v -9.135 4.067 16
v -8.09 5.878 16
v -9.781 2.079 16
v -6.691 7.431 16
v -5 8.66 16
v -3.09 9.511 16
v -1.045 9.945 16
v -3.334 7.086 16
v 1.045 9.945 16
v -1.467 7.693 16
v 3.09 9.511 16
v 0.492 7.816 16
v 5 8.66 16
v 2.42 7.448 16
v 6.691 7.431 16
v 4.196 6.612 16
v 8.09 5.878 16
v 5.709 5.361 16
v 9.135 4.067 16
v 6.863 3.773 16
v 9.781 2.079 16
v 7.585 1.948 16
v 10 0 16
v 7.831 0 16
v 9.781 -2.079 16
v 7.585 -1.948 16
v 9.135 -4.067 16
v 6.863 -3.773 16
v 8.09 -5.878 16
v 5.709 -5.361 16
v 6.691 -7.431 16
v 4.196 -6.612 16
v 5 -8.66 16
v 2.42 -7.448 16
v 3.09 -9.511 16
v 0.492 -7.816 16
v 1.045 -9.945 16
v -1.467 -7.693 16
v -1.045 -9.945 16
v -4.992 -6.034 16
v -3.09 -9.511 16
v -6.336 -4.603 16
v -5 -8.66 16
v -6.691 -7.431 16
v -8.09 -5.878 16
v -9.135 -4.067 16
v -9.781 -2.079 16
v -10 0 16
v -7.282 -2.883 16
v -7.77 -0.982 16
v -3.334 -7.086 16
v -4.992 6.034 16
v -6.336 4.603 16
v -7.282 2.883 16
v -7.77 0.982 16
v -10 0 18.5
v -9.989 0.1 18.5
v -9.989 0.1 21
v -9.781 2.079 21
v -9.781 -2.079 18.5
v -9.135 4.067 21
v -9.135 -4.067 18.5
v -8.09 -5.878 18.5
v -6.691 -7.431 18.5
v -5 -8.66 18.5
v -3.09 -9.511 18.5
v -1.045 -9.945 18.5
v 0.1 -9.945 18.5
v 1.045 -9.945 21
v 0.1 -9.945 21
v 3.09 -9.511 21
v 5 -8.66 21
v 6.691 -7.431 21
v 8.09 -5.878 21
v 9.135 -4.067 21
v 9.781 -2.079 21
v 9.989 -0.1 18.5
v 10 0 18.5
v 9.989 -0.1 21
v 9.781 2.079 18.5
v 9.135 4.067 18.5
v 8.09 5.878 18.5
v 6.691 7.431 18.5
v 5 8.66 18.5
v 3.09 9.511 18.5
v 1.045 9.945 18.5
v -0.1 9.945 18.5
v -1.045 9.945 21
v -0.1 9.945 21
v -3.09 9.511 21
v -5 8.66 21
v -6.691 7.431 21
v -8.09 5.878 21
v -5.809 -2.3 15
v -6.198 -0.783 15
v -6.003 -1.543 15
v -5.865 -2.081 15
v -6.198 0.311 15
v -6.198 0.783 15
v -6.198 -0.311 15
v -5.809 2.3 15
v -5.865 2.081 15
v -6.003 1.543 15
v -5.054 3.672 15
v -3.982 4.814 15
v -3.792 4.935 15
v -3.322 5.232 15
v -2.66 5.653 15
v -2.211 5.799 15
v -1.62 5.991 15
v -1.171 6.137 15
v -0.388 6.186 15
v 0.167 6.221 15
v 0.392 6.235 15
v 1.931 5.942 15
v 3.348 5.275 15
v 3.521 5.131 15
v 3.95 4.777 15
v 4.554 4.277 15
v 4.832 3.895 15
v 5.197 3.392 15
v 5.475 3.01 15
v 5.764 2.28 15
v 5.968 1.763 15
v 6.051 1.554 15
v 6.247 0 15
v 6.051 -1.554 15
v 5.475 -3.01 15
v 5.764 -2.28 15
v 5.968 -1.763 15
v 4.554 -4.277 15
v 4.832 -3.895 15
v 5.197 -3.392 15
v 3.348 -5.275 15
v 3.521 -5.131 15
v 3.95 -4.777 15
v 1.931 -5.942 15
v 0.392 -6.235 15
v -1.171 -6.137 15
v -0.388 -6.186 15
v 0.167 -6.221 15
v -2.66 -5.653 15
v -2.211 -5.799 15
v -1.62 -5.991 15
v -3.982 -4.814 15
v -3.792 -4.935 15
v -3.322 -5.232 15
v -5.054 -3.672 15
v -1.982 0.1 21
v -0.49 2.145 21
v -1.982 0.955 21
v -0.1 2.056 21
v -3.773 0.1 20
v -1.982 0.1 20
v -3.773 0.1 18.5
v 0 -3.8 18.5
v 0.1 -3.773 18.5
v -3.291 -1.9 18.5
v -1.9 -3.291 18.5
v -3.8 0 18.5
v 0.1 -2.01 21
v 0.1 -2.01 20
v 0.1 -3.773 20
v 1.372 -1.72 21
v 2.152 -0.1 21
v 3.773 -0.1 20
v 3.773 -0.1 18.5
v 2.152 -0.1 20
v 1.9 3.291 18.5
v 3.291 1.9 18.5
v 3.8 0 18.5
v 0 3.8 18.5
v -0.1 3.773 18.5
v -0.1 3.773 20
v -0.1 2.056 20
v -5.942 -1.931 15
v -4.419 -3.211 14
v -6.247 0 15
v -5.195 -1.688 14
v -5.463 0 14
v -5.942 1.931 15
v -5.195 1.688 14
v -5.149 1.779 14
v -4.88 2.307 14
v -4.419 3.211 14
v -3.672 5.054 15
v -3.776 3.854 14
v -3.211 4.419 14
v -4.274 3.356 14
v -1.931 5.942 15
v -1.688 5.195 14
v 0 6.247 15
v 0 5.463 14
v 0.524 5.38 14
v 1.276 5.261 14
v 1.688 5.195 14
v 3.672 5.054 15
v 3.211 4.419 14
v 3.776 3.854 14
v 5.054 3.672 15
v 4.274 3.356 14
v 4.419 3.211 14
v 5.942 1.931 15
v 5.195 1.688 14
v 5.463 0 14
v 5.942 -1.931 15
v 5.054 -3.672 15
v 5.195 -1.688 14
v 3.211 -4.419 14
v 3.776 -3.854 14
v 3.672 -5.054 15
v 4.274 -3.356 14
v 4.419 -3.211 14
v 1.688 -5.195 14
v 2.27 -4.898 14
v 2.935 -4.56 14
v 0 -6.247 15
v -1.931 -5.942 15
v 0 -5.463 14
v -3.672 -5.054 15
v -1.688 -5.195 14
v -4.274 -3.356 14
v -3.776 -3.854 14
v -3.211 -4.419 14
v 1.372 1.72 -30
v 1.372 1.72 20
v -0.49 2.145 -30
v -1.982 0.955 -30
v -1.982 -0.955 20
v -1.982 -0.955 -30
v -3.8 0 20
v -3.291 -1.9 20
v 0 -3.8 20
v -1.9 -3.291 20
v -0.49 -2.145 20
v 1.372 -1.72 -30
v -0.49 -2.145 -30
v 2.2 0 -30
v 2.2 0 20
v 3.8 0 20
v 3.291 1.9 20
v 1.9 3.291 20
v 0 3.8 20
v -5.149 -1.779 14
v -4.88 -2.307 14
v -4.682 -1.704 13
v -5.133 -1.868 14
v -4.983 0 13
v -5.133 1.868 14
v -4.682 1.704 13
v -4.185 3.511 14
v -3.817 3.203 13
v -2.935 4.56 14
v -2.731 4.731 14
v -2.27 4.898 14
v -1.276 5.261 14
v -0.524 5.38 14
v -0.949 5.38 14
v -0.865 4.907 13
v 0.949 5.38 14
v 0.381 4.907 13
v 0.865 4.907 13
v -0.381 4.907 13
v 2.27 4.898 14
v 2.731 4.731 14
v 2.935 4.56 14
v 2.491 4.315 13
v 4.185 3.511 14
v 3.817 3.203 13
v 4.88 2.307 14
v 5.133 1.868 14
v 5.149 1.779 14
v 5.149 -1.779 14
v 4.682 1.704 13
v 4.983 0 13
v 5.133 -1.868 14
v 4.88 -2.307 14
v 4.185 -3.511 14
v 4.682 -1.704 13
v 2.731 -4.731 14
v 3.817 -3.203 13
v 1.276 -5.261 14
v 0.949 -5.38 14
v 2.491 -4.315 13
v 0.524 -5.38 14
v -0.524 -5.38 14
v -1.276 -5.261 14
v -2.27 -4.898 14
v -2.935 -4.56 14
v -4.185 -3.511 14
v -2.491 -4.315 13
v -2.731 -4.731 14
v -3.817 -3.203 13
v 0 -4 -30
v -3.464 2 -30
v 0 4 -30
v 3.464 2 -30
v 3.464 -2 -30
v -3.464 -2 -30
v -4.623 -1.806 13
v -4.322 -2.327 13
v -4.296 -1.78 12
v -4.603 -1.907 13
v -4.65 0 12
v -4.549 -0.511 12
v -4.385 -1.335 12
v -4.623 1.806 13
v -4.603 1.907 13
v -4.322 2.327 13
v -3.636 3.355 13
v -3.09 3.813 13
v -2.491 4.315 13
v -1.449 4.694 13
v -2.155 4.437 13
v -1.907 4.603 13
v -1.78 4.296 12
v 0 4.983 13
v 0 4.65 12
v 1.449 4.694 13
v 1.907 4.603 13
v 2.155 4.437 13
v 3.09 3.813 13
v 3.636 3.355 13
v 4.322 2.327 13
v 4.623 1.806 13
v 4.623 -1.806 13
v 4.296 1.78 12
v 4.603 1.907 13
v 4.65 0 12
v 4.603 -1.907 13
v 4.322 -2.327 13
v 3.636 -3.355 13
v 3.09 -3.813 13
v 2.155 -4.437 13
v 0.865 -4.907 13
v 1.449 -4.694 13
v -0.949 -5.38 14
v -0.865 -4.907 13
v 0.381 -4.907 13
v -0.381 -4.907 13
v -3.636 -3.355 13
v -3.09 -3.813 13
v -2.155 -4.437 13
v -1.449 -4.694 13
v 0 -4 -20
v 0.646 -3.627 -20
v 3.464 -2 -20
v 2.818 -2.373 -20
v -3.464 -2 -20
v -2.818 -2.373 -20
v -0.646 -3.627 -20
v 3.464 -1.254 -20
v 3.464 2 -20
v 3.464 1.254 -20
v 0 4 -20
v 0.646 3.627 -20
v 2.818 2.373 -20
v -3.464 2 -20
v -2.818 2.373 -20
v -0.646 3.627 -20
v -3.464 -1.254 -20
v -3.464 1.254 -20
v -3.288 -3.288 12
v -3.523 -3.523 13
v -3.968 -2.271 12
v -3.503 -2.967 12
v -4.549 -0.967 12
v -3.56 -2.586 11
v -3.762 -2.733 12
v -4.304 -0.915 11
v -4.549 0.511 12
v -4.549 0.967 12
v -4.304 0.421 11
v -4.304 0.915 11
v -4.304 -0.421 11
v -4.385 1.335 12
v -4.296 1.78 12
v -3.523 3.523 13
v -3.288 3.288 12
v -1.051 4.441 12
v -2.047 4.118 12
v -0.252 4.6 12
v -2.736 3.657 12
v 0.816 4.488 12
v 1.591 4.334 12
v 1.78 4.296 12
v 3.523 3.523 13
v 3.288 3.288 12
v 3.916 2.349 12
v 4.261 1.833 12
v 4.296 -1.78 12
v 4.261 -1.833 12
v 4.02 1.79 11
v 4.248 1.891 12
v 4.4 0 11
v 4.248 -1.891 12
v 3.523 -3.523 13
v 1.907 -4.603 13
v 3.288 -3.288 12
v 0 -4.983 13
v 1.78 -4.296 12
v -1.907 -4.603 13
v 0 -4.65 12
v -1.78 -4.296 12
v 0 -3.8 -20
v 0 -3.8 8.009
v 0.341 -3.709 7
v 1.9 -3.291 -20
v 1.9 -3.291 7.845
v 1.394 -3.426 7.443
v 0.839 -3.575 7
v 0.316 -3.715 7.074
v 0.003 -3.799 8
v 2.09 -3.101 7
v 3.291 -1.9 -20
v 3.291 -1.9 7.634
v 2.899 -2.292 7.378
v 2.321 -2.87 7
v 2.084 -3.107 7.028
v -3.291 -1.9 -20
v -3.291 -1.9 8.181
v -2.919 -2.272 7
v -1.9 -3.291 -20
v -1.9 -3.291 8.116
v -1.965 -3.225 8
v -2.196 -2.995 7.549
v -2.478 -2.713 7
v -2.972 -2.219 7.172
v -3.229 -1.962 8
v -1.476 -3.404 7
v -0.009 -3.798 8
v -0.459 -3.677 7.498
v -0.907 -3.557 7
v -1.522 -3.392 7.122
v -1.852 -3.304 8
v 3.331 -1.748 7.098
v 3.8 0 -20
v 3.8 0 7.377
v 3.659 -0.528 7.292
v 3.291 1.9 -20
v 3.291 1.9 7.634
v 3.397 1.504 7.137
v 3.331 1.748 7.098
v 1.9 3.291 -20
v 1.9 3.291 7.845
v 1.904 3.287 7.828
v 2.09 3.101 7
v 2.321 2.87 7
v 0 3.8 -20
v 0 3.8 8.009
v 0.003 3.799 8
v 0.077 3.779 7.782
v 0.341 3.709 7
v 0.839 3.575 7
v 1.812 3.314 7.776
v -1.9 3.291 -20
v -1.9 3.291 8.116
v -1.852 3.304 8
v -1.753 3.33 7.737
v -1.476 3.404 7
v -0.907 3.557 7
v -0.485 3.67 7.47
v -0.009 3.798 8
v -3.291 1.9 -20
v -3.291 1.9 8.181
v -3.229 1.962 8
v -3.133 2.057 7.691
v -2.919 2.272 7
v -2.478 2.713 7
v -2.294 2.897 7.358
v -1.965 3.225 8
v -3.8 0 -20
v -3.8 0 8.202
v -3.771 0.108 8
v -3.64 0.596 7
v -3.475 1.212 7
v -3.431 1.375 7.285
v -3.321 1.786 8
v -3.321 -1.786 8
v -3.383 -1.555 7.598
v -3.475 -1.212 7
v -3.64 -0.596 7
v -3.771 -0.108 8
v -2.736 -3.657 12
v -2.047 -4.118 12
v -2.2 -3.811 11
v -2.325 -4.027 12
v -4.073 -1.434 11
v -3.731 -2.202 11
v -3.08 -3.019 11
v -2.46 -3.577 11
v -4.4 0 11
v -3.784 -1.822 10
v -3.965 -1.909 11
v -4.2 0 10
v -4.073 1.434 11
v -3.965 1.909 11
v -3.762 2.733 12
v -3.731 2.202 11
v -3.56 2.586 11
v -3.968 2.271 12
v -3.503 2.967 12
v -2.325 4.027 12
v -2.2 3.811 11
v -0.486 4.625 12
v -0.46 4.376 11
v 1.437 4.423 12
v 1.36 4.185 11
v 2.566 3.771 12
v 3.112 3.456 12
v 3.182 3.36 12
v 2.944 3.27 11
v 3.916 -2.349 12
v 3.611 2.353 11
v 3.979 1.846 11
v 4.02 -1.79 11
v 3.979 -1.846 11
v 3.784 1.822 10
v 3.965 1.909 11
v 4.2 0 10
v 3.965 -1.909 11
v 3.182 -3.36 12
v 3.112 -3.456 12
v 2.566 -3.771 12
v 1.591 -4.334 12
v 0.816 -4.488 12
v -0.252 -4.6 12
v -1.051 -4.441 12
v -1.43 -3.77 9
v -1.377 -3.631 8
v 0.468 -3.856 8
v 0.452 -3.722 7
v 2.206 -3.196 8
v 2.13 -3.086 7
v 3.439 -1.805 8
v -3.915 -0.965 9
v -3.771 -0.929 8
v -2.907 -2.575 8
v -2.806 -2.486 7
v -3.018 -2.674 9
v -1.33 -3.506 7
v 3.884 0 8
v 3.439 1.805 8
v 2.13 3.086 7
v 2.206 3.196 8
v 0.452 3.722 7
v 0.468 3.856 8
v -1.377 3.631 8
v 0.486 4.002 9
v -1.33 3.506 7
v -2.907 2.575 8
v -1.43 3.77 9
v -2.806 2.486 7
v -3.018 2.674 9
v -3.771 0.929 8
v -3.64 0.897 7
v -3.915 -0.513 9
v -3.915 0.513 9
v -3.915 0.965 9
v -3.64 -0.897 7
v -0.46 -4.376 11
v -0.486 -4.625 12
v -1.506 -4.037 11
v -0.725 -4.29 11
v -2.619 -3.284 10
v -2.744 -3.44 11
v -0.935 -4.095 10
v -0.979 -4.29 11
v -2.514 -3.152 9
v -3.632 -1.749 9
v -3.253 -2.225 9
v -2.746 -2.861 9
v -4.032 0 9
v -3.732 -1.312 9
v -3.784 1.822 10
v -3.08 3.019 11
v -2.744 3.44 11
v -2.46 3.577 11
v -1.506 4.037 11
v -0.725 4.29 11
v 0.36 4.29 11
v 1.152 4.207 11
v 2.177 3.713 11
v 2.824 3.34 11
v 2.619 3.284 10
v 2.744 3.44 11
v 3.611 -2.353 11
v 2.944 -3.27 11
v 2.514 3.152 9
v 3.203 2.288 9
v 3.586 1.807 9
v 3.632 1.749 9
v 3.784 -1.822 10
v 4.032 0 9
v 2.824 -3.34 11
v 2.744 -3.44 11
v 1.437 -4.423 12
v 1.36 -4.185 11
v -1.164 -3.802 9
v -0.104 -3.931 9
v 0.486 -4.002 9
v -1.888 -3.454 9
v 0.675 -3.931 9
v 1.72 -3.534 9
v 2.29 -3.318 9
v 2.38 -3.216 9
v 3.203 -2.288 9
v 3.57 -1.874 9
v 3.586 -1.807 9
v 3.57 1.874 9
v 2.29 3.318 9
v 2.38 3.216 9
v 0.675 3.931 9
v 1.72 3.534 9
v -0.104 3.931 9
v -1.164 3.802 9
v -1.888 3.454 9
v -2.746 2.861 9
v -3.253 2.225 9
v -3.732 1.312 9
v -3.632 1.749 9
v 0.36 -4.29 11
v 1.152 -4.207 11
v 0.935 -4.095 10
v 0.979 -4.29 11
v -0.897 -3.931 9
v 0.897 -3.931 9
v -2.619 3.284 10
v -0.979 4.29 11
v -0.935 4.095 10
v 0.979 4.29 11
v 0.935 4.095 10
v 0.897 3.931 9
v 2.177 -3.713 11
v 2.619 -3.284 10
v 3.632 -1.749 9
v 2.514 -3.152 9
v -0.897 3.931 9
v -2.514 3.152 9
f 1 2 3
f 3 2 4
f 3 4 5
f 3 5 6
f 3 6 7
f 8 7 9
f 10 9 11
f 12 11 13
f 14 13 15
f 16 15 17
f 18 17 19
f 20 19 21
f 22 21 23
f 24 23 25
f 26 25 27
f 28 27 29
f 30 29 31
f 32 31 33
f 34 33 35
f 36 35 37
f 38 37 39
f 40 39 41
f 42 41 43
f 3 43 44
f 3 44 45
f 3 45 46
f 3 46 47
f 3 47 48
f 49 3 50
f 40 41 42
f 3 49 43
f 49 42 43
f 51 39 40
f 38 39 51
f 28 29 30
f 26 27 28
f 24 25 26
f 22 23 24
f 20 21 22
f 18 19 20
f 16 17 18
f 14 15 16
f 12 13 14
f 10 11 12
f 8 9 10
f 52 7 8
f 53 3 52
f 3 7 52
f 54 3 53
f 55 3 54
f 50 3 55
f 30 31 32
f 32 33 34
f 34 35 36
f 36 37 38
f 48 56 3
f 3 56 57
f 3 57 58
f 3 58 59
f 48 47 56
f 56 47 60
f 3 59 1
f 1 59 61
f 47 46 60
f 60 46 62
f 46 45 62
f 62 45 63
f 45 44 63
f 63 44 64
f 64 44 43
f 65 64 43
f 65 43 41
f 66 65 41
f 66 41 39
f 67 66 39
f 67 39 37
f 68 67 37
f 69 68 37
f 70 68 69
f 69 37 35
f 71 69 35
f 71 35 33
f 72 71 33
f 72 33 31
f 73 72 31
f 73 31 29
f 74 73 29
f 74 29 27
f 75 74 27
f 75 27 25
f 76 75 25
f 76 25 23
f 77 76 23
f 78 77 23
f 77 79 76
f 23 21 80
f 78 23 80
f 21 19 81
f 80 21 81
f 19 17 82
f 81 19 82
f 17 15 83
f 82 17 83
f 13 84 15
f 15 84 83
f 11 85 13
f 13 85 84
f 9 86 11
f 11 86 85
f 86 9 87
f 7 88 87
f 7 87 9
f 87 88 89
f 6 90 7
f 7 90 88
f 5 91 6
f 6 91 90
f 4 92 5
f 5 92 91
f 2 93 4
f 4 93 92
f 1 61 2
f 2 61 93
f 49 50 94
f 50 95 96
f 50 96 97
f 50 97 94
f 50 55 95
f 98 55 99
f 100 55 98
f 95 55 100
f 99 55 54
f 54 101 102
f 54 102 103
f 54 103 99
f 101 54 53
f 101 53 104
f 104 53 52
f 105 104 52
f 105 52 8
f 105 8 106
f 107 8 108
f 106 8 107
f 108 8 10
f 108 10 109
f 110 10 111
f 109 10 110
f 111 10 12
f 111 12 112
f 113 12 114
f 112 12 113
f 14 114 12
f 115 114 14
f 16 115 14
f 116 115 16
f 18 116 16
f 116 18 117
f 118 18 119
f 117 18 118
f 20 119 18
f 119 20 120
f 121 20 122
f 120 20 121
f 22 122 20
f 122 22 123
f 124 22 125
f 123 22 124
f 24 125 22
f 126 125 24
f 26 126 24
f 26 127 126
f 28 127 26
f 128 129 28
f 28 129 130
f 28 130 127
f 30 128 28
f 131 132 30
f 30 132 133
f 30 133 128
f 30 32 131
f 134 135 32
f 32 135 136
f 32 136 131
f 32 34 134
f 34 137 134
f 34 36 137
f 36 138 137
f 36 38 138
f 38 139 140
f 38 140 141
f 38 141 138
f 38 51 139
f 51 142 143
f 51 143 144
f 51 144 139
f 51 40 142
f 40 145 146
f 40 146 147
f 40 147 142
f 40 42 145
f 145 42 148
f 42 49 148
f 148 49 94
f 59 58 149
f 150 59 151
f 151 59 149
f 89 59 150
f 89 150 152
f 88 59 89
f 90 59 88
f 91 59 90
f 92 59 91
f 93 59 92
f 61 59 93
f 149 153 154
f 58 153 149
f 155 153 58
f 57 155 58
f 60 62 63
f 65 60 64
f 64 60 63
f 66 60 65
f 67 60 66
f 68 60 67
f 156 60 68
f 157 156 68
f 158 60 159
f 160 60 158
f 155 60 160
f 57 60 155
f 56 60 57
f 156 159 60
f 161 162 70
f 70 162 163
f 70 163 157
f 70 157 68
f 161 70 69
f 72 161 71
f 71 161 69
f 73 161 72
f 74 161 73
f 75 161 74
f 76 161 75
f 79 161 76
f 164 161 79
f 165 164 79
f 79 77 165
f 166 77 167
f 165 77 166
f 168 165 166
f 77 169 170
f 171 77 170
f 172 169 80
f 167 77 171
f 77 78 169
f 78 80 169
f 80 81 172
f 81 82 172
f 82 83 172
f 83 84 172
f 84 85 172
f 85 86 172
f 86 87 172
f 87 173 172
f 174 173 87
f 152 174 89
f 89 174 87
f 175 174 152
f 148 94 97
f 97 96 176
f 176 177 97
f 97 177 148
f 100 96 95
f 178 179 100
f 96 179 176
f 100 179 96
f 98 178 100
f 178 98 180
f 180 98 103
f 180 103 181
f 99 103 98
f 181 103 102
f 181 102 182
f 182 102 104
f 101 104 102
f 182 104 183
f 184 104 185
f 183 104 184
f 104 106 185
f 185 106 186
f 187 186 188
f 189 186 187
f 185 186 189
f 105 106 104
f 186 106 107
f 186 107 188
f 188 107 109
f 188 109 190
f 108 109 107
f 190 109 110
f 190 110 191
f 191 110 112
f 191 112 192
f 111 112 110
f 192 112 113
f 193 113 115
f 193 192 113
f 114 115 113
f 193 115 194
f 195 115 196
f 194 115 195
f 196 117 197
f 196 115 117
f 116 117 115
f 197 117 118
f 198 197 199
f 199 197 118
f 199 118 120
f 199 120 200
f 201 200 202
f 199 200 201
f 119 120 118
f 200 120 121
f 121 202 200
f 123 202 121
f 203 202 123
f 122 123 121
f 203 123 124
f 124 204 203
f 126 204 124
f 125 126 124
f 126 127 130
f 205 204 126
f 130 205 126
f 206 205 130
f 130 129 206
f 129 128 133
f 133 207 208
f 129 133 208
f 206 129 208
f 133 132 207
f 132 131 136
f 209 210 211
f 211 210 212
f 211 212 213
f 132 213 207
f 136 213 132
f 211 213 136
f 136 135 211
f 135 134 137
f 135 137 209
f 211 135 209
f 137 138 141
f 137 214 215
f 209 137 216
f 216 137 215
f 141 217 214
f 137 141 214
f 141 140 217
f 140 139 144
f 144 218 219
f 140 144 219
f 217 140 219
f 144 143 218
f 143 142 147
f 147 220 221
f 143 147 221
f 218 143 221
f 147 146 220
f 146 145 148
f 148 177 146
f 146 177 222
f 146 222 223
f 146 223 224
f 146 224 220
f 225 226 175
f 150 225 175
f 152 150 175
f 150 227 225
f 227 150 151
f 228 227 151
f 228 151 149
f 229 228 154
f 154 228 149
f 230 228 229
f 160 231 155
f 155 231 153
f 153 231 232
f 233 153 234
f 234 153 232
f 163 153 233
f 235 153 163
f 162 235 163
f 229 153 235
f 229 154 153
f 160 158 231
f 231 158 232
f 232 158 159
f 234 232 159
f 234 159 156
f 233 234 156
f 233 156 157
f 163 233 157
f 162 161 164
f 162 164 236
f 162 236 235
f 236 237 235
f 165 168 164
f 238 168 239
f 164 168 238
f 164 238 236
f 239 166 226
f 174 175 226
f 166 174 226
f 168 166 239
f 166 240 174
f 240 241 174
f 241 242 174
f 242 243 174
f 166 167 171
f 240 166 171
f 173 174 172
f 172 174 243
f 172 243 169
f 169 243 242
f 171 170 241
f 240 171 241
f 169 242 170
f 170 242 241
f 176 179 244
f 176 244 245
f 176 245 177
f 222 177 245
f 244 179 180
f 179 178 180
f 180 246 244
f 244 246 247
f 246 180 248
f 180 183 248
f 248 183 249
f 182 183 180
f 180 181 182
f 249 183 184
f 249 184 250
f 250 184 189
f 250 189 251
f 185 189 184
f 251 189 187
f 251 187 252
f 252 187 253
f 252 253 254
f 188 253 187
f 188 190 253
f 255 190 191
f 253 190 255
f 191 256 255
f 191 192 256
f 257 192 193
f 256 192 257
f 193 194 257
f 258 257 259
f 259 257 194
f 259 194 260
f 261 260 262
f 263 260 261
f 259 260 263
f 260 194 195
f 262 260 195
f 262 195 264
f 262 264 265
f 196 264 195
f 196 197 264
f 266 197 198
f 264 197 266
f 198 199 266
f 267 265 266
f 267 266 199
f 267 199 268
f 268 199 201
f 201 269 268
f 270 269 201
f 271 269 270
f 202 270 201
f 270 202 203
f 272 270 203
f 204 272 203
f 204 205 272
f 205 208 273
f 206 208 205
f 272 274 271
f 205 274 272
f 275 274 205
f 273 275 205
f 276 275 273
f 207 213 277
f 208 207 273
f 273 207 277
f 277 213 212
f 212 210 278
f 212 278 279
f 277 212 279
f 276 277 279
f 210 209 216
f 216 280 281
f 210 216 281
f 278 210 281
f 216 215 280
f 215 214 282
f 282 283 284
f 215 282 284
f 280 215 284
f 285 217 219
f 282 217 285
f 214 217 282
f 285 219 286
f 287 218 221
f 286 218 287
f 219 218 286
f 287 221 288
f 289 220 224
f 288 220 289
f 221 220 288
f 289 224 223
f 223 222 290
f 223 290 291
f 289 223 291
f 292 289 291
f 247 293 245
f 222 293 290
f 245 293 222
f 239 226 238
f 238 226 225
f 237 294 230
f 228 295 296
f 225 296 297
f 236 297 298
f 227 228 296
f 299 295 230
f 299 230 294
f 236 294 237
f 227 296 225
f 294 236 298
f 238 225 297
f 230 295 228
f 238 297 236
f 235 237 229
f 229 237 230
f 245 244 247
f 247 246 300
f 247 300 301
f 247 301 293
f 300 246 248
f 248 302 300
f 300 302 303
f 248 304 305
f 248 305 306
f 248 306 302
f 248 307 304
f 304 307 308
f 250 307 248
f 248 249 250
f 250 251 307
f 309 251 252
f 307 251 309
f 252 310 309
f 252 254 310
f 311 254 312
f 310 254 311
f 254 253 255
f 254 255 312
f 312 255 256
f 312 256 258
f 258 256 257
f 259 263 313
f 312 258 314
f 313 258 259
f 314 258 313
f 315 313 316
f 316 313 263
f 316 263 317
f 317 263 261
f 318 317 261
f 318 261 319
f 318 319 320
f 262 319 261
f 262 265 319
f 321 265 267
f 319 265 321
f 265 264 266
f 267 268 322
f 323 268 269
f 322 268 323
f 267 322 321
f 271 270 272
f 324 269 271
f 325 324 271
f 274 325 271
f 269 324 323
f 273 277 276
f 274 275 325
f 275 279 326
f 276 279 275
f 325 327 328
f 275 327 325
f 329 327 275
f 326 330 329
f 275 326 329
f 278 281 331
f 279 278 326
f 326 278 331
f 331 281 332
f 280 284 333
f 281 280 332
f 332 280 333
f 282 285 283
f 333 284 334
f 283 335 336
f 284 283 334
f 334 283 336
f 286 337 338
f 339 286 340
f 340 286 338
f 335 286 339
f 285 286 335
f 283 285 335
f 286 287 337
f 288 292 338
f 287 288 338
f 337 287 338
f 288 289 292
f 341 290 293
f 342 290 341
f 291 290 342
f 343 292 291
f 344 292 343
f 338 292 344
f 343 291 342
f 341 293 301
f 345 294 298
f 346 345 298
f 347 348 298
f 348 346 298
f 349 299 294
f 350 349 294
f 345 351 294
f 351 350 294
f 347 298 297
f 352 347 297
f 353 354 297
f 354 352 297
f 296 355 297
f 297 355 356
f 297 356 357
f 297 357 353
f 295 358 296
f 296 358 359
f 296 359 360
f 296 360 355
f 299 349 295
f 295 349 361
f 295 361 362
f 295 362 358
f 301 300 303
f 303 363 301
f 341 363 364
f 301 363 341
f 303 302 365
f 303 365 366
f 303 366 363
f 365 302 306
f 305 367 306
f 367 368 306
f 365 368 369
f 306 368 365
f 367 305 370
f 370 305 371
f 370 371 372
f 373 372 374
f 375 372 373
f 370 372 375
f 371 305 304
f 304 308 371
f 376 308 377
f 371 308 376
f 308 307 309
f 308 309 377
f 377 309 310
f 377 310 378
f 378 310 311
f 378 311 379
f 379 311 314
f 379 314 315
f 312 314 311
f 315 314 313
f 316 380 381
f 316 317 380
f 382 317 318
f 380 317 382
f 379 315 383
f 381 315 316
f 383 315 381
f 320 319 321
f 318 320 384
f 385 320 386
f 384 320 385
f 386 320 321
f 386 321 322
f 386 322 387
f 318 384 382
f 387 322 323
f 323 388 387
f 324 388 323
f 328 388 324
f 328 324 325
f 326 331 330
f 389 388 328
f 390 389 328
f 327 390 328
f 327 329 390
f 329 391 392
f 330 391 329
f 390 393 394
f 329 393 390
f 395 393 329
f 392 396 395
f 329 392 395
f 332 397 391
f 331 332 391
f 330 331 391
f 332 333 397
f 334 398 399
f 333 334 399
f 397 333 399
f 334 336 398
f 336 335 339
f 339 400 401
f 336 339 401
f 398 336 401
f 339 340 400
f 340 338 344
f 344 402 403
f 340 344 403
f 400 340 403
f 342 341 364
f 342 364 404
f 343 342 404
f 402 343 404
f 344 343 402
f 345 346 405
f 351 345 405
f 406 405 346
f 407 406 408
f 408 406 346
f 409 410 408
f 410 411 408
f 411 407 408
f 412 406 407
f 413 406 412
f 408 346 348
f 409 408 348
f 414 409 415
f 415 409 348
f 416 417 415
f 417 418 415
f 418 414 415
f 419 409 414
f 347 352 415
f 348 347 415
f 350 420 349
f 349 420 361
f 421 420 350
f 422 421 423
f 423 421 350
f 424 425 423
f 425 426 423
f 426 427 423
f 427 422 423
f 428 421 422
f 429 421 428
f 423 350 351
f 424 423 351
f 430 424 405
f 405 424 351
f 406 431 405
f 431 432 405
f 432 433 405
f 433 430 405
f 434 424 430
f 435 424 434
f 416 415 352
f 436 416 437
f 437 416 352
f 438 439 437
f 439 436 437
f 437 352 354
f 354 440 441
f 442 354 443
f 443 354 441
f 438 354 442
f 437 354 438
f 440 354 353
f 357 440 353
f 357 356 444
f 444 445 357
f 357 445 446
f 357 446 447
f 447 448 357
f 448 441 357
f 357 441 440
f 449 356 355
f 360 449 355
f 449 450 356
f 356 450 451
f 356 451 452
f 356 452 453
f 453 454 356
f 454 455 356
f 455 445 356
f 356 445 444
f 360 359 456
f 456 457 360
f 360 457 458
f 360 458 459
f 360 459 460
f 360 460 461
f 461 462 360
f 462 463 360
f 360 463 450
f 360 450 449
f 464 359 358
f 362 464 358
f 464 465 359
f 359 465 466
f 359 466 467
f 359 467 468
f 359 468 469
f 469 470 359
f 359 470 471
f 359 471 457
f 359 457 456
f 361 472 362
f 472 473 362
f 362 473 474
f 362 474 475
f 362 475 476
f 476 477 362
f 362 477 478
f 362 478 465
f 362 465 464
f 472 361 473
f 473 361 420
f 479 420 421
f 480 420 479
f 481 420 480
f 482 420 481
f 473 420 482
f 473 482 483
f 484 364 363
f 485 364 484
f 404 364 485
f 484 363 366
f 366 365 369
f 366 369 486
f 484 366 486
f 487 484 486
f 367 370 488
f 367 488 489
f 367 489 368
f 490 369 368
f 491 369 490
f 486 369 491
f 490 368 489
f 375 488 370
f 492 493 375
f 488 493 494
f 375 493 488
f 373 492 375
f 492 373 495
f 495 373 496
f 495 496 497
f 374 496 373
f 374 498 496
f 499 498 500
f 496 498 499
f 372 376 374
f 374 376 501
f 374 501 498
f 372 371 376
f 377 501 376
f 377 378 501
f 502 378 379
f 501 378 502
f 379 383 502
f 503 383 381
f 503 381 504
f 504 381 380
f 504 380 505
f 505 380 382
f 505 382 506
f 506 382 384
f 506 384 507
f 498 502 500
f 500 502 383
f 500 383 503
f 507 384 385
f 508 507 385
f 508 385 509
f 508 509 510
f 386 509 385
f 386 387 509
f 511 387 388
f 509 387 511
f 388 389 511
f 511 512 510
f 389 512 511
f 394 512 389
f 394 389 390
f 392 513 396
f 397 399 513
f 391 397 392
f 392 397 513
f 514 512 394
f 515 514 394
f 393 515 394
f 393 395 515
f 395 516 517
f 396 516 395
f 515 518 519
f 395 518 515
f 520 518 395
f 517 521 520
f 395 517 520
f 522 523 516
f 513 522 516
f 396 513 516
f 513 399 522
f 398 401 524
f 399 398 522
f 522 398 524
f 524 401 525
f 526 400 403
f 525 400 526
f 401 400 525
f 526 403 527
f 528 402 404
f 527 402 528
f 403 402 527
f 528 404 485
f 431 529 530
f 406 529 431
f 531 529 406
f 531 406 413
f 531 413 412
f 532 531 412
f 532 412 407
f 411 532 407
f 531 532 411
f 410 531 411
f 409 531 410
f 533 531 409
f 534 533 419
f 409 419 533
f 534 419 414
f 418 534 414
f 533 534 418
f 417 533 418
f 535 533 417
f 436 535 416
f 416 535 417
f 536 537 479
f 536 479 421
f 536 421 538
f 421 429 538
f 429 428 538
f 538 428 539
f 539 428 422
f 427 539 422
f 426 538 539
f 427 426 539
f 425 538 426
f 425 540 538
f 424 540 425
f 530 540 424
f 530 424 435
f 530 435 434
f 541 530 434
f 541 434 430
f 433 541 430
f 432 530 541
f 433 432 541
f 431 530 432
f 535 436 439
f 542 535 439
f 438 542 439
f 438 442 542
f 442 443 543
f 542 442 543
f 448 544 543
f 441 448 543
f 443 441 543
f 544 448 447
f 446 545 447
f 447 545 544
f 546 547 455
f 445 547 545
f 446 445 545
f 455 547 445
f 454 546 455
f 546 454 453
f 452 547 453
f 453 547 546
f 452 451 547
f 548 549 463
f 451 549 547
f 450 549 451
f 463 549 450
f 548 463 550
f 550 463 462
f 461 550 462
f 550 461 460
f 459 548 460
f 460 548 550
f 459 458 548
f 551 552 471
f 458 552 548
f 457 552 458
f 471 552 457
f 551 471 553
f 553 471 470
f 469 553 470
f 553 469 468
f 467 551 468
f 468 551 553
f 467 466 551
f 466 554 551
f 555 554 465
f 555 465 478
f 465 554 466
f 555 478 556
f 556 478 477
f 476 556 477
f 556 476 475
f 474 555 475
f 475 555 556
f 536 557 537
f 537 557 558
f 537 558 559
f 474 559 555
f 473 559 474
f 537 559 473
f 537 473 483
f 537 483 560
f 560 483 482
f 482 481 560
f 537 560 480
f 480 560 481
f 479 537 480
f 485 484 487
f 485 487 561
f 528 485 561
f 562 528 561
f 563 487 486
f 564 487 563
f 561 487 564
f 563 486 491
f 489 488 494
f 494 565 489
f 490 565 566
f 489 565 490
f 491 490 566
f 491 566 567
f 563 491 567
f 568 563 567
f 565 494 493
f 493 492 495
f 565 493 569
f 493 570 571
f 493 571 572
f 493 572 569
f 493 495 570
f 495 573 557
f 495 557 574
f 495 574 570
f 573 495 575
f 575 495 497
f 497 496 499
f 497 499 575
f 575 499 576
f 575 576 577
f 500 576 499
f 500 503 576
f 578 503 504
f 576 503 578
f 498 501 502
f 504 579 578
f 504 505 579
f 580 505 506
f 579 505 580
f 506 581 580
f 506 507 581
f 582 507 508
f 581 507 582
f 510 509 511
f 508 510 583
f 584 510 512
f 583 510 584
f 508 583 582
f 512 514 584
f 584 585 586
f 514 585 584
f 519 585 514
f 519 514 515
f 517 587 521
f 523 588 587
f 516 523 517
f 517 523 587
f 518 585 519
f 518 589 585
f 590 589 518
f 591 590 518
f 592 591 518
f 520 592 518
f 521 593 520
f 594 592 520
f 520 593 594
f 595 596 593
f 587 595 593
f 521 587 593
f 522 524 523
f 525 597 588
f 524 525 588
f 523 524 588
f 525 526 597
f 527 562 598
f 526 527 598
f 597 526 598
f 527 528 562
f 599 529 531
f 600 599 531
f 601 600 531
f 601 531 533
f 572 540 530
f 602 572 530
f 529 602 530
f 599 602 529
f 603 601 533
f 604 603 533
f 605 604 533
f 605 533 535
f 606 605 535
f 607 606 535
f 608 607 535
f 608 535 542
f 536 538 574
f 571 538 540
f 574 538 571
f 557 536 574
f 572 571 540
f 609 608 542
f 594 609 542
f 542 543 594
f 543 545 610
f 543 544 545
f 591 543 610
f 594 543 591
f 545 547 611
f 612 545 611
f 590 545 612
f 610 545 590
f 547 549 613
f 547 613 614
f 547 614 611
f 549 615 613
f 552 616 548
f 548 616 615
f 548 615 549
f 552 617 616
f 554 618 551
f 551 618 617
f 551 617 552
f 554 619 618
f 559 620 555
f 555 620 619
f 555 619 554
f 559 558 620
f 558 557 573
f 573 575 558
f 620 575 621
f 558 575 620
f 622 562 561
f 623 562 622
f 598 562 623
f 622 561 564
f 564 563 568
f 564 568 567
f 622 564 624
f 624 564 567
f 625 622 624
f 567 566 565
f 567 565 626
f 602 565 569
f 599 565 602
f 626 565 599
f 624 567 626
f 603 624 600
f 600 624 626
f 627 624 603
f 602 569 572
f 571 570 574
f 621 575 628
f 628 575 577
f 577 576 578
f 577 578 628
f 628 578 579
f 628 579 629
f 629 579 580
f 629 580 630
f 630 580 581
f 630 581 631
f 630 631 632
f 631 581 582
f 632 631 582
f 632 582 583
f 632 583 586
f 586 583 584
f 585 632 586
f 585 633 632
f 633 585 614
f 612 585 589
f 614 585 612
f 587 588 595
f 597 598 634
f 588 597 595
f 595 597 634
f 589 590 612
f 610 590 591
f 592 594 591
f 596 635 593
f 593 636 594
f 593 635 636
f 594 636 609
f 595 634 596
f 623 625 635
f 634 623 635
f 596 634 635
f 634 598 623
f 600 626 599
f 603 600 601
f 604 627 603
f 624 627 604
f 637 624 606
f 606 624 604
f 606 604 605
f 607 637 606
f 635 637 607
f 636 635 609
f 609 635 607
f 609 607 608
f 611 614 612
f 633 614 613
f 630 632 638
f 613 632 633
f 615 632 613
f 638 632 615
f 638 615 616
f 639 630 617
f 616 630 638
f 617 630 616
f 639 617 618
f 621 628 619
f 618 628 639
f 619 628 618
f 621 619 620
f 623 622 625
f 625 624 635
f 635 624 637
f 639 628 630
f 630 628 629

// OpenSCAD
use<MCAD/2Dshapes.scad>

//axel

difference(){

	union(){

	//this for loop is a tan fillet
	for(i=[1:10]){
		translate([0,0,i+5])cylinder(h=1,r1=tan(i*7)+3.5,r2=tan((i+1)*7)+3.5);
		}
	translate([0,0,-20])cylinder(	h=40, r=3.8);
	translate([0,0,-30])linear_extrude(height=10)ngon(6,4);

	difference(){

		translate([0,0,16])cylinder(h=5, r=10);
		translate([24.9,24.9,21])cube([50,50,5], center=true);
		translate([-24.9,-24.9,21])cube([50,50,5], center=true);
	}}

translate([0,0,-60])cylinder(h=90, r=2.2);

};
